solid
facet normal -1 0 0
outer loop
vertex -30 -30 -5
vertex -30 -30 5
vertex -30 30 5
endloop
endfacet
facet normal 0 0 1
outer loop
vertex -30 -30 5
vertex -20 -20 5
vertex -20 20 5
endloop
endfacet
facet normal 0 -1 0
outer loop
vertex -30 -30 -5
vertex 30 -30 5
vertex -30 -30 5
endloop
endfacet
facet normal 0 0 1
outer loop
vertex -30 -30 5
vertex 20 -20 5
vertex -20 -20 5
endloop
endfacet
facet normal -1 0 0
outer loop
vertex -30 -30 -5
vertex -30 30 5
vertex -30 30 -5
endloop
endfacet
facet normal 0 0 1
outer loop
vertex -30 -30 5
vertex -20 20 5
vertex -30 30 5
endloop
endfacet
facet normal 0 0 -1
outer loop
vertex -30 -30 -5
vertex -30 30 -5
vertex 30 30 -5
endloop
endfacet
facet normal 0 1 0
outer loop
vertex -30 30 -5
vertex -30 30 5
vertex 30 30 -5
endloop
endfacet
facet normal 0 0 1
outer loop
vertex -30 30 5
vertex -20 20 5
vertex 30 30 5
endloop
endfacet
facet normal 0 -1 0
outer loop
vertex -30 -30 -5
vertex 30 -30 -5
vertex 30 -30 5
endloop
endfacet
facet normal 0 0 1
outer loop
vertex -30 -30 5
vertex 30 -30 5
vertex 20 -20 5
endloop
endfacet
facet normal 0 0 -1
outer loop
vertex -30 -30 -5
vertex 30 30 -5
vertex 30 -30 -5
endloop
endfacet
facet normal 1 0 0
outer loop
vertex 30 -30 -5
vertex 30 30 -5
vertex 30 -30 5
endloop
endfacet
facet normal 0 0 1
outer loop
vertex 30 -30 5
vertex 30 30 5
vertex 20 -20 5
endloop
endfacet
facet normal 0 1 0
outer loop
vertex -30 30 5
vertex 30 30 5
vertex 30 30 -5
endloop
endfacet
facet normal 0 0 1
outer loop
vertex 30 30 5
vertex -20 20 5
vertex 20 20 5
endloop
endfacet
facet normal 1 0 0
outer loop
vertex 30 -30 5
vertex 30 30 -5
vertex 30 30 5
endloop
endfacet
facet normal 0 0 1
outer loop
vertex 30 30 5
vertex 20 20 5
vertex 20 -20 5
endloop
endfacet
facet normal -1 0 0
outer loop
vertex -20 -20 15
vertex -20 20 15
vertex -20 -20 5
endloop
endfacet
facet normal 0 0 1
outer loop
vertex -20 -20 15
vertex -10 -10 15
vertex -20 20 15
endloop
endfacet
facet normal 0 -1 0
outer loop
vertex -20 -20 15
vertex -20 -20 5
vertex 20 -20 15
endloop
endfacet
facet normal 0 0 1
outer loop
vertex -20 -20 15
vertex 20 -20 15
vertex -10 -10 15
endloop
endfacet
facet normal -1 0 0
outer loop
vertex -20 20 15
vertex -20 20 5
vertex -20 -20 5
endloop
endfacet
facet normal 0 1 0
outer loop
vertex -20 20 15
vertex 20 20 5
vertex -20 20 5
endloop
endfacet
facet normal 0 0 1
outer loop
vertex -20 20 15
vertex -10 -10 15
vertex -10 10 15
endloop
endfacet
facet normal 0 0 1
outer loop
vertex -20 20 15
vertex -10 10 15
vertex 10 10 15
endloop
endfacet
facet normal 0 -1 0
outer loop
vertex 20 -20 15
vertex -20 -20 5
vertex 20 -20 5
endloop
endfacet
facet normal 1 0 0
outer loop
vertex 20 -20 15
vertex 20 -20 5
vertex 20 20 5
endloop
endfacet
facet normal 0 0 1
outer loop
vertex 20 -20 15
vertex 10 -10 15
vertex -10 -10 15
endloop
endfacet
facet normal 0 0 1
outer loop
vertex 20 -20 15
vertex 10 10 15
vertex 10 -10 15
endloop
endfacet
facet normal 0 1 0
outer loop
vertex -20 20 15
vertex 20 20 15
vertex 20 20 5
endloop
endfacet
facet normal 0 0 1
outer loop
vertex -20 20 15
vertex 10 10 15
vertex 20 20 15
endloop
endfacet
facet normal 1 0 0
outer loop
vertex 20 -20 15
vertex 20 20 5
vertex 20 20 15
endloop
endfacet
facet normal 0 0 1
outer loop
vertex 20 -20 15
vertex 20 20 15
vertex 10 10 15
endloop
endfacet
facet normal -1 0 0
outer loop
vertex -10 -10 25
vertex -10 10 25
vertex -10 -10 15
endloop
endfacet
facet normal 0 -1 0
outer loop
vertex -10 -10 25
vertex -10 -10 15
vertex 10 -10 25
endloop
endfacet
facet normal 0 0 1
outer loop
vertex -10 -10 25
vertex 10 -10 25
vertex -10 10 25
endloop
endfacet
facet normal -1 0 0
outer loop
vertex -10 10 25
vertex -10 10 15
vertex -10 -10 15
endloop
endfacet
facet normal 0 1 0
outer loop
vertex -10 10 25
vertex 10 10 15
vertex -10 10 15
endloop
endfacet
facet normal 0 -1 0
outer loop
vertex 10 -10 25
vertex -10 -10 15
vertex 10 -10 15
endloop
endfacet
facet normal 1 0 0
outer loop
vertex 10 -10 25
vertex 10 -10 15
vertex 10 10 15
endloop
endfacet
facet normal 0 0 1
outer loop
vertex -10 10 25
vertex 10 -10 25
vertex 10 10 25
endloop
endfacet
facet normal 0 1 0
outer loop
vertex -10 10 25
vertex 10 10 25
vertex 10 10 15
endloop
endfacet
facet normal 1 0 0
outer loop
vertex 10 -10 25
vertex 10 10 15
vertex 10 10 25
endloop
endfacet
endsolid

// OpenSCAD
cube([60, 60, 10], center=true);
translate([0, 0, 10]) cube([40, 40, 10], center=true);
translate([0, 0, 20]) cube([20, 20, 10], center=true);
